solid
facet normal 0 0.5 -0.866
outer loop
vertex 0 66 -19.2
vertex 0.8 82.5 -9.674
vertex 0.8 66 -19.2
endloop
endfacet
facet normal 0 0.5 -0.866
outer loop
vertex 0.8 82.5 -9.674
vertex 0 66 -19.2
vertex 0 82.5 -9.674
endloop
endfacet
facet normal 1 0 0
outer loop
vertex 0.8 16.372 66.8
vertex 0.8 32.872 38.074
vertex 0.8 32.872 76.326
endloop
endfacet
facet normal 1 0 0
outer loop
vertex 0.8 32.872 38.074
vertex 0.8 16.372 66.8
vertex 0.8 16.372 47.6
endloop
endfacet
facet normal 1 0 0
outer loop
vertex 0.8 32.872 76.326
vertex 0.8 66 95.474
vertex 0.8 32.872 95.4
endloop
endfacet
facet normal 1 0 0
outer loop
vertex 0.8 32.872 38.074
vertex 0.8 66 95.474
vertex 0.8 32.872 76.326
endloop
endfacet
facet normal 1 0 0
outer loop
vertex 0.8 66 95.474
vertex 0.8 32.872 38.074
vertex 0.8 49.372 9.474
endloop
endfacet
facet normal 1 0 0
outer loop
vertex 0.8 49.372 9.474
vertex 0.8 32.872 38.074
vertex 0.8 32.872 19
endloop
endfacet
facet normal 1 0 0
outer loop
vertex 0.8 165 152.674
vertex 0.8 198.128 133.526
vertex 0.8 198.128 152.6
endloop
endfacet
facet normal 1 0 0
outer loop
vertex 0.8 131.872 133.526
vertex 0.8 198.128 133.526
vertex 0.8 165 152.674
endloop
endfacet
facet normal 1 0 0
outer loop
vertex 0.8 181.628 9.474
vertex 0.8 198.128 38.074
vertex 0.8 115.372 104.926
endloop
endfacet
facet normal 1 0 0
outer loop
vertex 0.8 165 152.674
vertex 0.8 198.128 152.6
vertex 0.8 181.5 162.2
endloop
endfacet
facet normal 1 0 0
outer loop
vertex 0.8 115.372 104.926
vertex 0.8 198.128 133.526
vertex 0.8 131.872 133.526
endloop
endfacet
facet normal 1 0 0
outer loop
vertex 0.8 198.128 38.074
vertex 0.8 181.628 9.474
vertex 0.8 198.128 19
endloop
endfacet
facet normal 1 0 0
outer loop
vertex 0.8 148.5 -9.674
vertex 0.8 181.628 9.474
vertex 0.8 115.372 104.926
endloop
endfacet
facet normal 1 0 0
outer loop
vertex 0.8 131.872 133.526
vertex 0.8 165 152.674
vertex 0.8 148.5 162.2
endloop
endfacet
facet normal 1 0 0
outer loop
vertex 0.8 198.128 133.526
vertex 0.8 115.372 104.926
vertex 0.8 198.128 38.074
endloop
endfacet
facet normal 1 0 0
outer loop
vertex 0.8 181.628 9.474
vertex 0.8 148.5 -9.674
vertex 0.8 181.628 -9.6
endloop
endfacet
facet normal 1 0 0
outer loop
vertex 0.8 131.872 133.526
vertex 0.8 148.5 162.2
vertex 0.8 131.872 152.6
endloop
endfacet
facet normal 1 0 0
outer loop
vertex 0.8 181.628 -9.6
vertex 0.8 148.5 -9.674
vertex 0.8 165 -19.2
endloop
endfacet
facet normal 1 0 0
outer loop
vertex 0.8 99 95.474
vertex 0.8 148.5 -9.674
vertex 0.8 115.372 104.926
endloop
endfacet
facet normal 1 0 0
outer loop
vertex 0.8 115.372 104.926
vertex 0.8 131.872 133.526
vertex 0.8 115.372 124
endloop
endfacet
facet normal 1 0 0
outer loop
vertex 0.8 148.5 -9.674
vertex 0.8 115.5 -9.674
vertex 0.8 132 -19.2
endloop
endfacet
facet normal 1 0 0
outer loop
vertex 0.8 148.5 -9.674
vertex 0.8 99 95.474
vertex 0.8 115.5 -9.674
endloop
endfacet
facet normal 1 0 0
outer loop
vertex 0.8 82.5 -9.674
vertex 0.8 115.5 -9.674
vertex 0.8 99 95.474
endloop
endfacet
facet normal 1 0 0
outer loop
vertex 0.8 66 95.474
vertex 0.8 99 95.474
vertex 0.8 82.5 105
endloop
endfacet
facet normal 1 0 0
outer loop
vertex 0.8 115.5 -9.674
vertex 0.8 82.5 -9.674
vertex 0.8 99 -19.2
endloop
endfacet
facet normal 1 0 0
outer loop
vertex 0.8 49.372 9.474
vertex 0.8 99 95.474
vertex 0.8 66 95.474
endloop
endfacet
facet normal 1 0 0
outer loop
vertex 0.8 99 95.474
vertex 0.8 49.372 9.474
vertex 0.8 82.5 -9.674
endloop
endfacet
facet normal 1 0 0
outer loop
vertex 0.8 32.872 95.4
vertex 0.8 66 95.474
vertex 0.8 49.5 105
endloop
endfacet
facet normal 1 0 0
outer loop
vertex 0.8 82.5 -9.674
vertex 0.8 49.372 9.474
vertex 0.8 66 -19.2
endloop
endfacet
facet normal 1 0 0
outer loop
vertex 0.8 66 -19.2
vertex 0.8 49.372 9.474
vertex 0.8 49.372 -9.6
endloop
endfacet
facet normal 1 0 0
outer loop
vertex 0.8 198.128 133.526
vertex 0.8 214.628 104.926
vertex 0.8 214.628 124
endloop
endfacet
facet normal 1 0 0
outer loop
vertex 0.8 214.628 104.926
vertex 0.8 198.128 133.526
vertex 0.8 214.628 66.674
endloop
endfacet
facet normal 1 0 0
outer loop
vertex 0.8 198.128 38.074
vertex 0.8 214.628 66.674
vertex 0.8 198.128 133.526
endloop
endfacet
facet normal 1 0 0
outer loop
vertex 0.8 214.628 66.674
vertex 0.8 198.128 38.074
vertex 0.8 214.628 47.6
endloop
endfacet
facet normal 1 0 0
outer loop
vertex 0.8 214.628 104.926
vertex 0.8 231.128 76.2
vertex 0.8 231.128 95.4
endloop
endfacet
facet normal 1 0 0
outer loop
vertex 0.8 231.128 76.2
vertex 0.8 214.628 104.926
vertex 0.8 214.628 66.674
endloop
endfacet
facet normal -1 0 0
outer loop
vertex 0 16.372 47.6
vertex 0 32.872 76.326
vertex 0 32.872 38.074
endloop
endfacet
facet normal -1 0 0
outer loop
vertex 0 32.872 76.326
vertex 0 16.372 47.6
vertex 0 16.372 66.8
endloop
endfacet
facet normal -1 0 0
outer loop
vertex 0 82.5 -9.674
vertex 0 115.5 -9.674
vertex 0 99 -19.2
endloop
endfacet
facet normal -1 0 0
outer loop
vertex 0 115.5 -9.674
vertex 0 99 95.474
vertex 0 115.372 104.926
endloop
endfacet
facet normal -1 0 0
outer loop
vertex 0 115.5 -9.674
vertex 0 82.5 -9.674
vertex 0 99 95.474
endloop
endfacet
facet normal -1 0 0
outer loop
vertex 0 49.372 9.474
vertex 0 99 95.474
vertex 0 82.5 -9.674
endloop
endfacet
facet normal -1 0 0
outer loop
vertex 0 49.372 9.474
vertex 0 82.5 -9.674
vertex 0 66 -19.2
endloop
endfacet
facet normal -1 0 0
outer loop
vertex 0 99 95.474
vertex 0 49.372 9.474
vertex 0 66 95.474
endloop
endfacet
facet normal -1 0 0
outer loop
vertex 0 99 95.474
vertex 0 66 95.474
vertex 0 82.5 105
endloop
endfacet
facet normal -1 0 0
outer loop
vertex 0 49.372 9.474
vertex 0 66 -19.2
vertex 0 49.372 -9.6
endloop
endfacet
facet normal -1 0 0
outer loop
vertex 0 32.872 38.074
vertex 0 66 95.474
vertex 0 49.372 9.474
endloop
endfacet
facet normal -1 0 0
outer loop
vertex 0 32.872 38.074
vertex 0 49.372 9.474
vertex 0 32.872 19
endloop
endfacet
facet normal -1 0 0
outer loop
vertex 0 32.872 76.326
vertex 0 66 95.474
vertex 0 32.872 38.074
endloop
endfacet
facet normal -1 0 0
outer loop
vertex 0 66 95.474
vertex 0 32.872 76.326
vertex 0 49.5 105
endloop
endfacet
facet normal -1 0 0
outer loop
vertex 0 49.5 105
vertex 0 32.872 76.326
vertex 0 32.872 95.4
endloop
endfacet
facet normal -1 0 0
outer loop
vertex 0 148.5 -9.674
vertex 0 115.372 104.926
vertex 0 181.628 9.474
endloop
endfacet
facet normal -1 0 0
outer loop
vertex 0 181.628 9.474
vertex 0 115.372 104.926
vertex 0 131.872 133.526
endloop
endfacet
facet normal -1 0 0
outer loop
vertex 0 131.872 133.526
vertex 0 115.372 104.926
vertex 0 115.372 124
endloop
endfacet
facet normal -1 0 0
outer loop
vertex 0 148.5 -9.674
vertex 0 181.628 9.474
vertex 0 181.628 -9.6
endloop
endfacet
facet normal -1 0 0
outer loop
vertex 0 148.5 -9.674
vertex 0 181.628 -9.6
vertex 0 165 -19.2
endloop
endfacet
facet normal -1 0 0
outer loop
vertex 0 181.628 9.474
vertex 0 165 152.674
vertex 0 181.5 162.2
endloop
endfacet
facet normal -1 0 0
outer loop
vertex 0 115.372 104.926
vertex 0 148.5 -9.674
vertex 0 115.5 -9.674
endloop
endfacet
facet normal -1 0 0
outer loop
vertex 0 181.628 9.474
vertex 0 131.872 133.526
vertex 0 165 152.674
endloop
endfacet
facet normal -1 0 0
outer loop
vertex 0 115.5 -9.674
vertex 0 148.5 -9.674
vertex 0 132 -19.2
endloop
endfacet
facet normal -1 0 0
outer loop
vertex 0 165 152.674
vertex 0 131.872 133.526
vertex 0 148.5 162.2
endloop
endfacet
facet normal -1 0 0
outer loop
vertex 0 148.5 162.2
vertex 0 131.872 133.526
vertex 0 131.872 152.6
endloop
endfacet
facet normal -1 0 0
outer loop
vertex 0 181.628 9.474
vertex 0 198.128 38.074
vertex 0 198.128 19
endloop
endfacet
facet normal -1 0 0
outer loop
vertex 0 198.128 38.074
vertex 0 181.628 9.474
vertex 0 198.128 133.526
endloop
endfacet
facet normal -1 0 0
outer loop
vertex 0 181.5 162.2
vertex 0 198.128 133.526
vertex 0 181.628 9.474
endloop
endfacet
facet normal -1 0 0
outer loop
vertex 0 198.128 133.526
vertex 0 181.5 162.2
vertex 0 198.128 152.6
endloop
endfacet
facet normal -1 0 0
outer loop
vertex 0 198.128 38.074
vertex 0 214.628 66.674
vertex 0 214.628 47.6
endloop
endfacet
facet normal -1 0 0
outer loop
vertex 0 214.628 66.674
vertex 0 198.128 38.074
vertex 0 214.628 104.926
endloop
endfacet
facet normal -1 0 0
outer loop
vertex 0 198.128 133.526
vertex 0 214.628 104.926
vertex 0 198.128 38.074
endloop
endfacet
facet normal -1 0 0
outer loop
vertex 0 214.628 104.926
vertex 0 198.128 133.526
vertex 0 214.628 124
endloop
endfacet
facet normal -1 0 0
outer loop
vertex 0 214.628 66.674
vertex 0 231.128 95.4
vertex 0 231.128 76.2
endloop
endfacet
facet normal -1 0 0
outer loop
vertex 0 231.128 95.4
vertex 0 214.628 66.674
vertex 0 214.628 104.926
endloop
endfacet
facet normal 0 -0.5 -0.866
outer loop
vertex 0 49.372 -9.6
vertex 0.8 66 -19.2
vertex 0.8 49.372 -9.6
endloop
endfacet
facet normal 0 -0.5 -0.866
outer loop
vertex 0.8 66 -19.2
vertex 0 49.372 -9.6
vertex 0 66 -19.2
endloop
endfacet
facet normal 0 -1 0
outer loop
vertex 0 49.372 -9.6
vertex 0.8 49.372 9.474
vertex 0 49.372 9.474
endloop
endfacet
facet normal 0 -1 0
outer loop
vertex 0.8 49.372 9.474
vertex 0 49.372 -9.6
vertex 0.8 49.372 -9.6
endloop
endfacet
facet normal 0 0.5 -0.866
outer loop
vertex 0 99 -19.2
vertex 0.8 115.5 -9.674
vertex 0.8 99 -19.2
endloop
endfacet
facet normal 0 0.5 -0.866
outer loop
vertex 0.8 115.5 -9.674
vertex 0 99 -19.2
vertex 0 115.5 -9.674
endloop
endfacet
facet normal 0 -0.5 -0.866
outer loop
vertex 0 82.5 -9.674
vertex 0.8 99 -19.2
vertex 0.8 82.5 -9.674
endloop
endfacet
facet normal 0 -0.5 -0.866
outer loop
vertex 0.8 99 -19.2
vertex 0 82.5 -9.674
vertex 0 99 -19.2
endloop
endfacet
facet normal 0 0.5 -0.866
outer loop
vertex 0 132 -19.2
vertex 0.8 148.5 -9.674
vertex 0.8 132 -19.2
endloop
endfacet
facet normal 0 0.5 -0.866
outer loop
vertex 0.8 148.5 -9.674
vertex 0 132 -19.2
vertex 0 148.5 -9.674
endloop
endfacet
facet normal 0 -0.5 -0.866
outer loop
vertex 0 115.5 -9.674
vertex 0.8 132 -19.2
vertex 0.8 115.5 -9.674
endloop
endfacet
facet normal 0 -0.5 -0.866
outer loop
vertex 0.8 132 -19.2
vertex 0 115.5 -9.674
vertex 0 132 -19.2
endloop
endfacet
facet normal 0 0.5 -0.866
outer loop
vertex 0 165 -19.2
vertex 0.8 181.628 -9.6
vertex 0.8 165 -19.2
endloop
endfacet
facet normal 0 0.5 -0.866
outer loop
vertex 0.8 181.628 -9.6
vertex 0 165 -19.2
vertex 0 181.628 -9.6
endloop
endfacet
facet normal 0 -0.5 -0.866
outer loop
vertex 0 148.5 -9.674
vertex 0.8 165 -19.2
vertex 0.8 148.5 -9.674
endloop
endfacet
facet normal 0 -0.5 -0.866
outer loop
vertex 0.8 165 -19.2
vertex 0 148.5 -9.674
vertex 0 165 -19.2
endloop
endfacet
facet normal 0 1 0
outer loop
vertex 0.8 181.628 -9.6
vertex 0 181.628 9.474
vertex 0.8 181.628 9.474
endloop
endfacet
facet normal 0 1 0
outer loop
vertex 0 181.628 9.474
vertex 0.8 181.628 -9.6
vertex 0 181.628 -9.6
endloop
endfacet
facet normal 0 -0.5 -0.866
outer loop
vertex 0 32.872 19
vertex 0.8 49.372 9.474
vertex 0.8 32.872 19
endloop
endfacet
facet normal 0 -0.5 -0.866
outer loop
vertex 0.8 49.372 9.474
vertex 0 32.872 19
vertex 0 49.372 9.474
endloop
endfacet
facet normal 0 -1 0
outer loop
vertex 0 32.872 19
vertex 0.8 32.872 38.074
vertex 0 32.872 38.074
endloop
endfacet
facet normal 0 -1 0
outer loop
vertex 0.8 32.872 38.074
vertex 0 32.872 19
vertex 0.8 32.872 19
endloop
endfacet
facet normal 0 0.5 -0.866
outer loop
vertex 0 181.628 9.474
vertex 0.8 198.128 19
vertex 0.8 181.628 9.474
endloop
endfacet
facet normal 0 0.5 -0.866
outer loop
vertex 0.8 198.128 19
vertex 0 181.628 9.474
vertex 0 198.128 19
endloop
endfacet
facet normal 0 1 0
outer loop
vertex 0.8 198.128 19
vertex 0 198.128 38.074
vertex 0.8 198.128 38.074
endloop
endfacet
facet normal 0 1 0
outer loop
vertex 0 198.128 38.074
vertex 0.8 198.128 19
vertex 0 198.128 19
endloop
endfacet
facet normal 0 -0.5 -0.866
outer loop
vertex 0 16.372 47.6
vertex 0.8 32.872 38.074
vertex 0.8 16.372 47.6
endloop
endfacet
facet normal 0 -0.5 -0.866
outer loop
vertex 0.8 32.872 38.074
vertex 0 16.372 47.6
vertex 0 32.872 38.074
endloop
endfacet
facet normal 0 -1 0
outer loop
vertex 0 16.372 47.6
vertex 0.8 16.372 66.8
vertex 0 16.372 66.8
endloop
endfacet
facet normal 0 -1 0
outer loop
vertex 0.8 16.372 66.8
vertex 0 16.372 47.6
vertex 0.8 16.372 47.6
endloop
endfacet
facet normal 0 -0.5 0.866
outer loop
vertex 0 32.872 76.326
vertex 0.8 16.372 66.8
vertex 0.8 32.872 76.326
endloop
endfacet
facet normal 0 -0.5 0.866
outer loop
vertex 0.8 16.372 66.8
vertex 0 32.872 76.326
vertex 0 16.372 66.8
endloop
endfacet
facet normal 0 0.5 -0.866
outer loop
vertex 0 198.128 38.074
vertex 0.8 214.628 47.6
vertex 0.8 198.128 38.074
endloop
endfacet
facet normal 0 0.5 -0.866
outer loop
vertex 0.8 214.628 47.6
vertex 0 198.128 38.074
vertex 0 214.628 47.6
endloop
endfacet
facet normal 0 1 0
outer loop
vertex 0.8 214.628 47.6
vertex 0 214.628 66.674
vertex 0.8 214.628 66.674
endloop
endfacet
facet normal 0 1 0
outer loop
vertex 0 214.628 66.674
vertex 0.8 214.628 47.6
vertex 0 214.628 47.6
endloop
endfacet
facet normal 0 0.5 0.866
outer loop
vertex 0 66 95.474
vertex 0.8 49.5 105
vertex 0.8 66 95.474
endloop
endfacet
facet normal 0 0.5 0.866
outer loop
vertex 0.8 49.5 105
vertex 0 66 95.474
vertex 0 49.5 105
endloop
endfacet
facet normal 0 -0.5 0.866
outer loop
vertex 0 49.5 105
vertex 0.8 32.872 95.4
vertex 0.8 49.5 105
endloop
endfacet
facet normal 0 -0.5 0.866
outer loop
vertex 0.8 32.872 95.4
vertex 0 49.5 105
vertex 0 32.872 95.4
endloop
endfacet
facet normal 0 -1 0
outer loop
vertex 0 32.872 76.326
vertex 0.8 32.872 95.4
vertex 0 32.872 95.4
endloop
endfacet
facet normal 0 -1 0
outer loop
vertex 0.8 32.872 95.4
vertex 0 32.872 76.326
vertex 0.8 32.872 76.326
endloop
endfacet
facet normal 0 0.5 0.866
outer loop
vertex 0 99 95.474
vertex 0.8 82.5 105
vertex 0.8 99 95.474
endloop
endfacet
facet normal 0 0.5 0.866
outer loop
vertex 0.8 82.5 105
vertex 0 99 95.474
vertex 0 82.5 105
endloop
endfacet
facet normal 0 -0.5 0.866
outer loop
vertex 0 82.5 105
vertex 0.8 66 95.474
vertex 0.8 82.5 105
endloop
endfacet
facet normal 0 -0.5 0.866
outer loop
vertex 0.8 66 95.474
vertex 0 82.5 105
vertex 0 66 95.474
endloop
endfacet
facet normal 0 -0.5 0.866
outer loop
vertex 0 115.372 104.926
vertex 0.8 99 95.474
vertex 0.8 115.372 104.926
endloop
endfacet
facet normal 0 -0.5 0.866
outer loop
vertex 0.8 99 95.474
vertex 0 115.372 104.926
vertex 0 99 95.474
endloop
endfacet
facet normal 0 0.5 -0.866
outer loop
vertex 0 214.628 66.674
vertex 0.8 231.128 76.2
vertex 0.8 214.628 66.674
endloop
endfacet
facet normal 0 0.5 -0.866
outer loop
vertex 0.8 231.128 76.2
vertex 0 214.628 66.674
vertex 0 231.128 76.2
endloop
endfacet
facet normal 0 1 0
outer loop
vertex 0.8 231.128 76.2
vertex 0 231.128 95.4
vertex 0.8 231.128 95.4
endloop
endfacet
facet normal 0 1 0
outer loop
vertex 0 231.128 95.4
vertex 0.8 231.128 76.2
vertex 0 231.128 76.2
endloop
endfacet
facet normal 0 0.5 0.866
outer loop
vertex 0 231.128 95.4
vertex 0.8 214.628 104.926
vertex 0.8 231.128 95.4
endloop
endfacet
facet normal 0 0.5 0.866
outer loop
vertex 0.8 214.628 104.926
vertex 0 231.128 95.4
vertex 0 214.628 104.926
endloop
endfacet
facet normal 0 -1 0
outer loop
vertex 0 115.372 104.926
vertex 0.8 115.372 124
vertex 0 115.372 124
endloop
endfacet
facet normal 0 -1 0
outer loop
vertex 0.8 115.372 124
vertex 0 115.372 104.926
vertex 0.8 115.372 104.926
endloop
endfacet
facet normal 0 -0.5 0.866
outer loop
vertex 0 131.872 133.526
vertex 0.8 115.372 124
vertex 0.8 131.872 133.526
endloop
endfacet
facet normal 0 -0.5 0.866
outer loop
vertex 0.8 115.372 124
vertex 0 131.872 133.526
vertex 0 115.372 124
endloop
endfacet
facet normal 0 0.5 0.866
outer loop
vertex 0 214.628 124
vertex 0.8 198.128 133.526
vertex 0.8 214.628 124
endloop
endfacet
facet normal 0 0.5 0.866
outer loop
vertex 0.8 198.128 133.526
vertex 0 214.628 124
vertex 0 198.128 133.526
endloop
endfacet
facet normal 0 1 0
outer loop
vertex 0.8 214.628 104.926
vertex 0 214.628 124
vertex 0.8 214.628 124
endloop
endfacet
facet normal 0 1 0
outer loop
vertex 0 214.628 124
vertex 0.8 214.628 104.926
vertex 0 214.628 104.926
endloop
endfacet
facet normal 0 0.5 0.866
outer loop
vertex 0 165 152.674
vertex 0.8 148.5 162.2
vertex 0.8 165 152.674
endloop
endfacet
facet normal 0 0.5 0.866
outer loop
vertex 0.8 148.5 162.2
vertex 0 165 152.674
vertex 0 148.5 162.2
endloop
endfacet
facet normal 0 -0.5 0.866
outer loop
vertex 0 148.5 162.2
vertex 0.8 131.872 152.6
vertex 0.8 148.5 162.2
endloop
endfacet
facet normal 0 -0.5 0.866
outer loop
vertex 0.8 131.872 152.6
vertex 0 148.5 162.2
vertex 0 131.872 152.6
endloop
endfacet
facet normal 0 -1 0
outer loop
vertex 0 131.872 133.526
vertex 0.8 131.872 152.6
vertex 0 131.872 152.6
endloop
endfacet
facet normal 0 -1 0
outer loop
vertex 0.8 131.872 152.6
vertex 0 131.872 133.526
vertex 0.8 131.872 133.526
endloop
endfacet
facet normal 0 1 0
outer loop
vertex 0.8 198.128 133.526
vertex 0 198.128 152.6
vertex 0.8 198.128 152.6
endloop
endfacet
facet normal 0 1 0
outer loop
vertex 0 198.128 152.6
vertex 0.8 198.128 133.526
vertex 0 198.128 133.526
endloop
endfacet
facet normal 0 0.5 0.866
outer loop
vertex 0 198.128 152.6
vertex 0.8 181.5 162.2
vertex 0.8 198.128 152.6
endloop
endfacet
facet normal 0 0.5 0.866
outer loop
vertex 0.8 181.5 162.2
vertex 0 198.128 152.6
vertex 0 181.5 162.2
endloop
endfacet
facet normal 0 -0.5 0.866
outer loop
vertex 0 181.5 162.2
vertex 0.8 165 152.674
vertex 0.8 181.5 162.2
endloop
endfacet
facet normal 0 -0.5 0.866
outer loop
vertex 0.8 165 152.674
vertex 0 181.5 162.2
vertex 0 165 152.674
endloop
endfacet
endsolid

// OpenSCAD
$fn=200;

// radius for hex
br=18.8;
// height for hex
bh=0.8;

// Distance between 2 hexes
dist=33;


board();

module draw_line(j, start, end) {
    for ( i = [start : end] ){
        translate([0,i*dist+(dist/2*(j%2)),j*28.6]) rotate([0,90,0]) cylinder(r=br+0.4,h=bh, $fn=6);
    }
}


module board() {
    difference() {
        translate([0,0,0]) {
            draw_line(0,2, 5);
            draw_line(1,1,5);
            draw_line(2,1,6);
            draw_line(3,1,6);
            draw_line(4,4,6);
            draw_line(5,4,5);
        }
    }
}
